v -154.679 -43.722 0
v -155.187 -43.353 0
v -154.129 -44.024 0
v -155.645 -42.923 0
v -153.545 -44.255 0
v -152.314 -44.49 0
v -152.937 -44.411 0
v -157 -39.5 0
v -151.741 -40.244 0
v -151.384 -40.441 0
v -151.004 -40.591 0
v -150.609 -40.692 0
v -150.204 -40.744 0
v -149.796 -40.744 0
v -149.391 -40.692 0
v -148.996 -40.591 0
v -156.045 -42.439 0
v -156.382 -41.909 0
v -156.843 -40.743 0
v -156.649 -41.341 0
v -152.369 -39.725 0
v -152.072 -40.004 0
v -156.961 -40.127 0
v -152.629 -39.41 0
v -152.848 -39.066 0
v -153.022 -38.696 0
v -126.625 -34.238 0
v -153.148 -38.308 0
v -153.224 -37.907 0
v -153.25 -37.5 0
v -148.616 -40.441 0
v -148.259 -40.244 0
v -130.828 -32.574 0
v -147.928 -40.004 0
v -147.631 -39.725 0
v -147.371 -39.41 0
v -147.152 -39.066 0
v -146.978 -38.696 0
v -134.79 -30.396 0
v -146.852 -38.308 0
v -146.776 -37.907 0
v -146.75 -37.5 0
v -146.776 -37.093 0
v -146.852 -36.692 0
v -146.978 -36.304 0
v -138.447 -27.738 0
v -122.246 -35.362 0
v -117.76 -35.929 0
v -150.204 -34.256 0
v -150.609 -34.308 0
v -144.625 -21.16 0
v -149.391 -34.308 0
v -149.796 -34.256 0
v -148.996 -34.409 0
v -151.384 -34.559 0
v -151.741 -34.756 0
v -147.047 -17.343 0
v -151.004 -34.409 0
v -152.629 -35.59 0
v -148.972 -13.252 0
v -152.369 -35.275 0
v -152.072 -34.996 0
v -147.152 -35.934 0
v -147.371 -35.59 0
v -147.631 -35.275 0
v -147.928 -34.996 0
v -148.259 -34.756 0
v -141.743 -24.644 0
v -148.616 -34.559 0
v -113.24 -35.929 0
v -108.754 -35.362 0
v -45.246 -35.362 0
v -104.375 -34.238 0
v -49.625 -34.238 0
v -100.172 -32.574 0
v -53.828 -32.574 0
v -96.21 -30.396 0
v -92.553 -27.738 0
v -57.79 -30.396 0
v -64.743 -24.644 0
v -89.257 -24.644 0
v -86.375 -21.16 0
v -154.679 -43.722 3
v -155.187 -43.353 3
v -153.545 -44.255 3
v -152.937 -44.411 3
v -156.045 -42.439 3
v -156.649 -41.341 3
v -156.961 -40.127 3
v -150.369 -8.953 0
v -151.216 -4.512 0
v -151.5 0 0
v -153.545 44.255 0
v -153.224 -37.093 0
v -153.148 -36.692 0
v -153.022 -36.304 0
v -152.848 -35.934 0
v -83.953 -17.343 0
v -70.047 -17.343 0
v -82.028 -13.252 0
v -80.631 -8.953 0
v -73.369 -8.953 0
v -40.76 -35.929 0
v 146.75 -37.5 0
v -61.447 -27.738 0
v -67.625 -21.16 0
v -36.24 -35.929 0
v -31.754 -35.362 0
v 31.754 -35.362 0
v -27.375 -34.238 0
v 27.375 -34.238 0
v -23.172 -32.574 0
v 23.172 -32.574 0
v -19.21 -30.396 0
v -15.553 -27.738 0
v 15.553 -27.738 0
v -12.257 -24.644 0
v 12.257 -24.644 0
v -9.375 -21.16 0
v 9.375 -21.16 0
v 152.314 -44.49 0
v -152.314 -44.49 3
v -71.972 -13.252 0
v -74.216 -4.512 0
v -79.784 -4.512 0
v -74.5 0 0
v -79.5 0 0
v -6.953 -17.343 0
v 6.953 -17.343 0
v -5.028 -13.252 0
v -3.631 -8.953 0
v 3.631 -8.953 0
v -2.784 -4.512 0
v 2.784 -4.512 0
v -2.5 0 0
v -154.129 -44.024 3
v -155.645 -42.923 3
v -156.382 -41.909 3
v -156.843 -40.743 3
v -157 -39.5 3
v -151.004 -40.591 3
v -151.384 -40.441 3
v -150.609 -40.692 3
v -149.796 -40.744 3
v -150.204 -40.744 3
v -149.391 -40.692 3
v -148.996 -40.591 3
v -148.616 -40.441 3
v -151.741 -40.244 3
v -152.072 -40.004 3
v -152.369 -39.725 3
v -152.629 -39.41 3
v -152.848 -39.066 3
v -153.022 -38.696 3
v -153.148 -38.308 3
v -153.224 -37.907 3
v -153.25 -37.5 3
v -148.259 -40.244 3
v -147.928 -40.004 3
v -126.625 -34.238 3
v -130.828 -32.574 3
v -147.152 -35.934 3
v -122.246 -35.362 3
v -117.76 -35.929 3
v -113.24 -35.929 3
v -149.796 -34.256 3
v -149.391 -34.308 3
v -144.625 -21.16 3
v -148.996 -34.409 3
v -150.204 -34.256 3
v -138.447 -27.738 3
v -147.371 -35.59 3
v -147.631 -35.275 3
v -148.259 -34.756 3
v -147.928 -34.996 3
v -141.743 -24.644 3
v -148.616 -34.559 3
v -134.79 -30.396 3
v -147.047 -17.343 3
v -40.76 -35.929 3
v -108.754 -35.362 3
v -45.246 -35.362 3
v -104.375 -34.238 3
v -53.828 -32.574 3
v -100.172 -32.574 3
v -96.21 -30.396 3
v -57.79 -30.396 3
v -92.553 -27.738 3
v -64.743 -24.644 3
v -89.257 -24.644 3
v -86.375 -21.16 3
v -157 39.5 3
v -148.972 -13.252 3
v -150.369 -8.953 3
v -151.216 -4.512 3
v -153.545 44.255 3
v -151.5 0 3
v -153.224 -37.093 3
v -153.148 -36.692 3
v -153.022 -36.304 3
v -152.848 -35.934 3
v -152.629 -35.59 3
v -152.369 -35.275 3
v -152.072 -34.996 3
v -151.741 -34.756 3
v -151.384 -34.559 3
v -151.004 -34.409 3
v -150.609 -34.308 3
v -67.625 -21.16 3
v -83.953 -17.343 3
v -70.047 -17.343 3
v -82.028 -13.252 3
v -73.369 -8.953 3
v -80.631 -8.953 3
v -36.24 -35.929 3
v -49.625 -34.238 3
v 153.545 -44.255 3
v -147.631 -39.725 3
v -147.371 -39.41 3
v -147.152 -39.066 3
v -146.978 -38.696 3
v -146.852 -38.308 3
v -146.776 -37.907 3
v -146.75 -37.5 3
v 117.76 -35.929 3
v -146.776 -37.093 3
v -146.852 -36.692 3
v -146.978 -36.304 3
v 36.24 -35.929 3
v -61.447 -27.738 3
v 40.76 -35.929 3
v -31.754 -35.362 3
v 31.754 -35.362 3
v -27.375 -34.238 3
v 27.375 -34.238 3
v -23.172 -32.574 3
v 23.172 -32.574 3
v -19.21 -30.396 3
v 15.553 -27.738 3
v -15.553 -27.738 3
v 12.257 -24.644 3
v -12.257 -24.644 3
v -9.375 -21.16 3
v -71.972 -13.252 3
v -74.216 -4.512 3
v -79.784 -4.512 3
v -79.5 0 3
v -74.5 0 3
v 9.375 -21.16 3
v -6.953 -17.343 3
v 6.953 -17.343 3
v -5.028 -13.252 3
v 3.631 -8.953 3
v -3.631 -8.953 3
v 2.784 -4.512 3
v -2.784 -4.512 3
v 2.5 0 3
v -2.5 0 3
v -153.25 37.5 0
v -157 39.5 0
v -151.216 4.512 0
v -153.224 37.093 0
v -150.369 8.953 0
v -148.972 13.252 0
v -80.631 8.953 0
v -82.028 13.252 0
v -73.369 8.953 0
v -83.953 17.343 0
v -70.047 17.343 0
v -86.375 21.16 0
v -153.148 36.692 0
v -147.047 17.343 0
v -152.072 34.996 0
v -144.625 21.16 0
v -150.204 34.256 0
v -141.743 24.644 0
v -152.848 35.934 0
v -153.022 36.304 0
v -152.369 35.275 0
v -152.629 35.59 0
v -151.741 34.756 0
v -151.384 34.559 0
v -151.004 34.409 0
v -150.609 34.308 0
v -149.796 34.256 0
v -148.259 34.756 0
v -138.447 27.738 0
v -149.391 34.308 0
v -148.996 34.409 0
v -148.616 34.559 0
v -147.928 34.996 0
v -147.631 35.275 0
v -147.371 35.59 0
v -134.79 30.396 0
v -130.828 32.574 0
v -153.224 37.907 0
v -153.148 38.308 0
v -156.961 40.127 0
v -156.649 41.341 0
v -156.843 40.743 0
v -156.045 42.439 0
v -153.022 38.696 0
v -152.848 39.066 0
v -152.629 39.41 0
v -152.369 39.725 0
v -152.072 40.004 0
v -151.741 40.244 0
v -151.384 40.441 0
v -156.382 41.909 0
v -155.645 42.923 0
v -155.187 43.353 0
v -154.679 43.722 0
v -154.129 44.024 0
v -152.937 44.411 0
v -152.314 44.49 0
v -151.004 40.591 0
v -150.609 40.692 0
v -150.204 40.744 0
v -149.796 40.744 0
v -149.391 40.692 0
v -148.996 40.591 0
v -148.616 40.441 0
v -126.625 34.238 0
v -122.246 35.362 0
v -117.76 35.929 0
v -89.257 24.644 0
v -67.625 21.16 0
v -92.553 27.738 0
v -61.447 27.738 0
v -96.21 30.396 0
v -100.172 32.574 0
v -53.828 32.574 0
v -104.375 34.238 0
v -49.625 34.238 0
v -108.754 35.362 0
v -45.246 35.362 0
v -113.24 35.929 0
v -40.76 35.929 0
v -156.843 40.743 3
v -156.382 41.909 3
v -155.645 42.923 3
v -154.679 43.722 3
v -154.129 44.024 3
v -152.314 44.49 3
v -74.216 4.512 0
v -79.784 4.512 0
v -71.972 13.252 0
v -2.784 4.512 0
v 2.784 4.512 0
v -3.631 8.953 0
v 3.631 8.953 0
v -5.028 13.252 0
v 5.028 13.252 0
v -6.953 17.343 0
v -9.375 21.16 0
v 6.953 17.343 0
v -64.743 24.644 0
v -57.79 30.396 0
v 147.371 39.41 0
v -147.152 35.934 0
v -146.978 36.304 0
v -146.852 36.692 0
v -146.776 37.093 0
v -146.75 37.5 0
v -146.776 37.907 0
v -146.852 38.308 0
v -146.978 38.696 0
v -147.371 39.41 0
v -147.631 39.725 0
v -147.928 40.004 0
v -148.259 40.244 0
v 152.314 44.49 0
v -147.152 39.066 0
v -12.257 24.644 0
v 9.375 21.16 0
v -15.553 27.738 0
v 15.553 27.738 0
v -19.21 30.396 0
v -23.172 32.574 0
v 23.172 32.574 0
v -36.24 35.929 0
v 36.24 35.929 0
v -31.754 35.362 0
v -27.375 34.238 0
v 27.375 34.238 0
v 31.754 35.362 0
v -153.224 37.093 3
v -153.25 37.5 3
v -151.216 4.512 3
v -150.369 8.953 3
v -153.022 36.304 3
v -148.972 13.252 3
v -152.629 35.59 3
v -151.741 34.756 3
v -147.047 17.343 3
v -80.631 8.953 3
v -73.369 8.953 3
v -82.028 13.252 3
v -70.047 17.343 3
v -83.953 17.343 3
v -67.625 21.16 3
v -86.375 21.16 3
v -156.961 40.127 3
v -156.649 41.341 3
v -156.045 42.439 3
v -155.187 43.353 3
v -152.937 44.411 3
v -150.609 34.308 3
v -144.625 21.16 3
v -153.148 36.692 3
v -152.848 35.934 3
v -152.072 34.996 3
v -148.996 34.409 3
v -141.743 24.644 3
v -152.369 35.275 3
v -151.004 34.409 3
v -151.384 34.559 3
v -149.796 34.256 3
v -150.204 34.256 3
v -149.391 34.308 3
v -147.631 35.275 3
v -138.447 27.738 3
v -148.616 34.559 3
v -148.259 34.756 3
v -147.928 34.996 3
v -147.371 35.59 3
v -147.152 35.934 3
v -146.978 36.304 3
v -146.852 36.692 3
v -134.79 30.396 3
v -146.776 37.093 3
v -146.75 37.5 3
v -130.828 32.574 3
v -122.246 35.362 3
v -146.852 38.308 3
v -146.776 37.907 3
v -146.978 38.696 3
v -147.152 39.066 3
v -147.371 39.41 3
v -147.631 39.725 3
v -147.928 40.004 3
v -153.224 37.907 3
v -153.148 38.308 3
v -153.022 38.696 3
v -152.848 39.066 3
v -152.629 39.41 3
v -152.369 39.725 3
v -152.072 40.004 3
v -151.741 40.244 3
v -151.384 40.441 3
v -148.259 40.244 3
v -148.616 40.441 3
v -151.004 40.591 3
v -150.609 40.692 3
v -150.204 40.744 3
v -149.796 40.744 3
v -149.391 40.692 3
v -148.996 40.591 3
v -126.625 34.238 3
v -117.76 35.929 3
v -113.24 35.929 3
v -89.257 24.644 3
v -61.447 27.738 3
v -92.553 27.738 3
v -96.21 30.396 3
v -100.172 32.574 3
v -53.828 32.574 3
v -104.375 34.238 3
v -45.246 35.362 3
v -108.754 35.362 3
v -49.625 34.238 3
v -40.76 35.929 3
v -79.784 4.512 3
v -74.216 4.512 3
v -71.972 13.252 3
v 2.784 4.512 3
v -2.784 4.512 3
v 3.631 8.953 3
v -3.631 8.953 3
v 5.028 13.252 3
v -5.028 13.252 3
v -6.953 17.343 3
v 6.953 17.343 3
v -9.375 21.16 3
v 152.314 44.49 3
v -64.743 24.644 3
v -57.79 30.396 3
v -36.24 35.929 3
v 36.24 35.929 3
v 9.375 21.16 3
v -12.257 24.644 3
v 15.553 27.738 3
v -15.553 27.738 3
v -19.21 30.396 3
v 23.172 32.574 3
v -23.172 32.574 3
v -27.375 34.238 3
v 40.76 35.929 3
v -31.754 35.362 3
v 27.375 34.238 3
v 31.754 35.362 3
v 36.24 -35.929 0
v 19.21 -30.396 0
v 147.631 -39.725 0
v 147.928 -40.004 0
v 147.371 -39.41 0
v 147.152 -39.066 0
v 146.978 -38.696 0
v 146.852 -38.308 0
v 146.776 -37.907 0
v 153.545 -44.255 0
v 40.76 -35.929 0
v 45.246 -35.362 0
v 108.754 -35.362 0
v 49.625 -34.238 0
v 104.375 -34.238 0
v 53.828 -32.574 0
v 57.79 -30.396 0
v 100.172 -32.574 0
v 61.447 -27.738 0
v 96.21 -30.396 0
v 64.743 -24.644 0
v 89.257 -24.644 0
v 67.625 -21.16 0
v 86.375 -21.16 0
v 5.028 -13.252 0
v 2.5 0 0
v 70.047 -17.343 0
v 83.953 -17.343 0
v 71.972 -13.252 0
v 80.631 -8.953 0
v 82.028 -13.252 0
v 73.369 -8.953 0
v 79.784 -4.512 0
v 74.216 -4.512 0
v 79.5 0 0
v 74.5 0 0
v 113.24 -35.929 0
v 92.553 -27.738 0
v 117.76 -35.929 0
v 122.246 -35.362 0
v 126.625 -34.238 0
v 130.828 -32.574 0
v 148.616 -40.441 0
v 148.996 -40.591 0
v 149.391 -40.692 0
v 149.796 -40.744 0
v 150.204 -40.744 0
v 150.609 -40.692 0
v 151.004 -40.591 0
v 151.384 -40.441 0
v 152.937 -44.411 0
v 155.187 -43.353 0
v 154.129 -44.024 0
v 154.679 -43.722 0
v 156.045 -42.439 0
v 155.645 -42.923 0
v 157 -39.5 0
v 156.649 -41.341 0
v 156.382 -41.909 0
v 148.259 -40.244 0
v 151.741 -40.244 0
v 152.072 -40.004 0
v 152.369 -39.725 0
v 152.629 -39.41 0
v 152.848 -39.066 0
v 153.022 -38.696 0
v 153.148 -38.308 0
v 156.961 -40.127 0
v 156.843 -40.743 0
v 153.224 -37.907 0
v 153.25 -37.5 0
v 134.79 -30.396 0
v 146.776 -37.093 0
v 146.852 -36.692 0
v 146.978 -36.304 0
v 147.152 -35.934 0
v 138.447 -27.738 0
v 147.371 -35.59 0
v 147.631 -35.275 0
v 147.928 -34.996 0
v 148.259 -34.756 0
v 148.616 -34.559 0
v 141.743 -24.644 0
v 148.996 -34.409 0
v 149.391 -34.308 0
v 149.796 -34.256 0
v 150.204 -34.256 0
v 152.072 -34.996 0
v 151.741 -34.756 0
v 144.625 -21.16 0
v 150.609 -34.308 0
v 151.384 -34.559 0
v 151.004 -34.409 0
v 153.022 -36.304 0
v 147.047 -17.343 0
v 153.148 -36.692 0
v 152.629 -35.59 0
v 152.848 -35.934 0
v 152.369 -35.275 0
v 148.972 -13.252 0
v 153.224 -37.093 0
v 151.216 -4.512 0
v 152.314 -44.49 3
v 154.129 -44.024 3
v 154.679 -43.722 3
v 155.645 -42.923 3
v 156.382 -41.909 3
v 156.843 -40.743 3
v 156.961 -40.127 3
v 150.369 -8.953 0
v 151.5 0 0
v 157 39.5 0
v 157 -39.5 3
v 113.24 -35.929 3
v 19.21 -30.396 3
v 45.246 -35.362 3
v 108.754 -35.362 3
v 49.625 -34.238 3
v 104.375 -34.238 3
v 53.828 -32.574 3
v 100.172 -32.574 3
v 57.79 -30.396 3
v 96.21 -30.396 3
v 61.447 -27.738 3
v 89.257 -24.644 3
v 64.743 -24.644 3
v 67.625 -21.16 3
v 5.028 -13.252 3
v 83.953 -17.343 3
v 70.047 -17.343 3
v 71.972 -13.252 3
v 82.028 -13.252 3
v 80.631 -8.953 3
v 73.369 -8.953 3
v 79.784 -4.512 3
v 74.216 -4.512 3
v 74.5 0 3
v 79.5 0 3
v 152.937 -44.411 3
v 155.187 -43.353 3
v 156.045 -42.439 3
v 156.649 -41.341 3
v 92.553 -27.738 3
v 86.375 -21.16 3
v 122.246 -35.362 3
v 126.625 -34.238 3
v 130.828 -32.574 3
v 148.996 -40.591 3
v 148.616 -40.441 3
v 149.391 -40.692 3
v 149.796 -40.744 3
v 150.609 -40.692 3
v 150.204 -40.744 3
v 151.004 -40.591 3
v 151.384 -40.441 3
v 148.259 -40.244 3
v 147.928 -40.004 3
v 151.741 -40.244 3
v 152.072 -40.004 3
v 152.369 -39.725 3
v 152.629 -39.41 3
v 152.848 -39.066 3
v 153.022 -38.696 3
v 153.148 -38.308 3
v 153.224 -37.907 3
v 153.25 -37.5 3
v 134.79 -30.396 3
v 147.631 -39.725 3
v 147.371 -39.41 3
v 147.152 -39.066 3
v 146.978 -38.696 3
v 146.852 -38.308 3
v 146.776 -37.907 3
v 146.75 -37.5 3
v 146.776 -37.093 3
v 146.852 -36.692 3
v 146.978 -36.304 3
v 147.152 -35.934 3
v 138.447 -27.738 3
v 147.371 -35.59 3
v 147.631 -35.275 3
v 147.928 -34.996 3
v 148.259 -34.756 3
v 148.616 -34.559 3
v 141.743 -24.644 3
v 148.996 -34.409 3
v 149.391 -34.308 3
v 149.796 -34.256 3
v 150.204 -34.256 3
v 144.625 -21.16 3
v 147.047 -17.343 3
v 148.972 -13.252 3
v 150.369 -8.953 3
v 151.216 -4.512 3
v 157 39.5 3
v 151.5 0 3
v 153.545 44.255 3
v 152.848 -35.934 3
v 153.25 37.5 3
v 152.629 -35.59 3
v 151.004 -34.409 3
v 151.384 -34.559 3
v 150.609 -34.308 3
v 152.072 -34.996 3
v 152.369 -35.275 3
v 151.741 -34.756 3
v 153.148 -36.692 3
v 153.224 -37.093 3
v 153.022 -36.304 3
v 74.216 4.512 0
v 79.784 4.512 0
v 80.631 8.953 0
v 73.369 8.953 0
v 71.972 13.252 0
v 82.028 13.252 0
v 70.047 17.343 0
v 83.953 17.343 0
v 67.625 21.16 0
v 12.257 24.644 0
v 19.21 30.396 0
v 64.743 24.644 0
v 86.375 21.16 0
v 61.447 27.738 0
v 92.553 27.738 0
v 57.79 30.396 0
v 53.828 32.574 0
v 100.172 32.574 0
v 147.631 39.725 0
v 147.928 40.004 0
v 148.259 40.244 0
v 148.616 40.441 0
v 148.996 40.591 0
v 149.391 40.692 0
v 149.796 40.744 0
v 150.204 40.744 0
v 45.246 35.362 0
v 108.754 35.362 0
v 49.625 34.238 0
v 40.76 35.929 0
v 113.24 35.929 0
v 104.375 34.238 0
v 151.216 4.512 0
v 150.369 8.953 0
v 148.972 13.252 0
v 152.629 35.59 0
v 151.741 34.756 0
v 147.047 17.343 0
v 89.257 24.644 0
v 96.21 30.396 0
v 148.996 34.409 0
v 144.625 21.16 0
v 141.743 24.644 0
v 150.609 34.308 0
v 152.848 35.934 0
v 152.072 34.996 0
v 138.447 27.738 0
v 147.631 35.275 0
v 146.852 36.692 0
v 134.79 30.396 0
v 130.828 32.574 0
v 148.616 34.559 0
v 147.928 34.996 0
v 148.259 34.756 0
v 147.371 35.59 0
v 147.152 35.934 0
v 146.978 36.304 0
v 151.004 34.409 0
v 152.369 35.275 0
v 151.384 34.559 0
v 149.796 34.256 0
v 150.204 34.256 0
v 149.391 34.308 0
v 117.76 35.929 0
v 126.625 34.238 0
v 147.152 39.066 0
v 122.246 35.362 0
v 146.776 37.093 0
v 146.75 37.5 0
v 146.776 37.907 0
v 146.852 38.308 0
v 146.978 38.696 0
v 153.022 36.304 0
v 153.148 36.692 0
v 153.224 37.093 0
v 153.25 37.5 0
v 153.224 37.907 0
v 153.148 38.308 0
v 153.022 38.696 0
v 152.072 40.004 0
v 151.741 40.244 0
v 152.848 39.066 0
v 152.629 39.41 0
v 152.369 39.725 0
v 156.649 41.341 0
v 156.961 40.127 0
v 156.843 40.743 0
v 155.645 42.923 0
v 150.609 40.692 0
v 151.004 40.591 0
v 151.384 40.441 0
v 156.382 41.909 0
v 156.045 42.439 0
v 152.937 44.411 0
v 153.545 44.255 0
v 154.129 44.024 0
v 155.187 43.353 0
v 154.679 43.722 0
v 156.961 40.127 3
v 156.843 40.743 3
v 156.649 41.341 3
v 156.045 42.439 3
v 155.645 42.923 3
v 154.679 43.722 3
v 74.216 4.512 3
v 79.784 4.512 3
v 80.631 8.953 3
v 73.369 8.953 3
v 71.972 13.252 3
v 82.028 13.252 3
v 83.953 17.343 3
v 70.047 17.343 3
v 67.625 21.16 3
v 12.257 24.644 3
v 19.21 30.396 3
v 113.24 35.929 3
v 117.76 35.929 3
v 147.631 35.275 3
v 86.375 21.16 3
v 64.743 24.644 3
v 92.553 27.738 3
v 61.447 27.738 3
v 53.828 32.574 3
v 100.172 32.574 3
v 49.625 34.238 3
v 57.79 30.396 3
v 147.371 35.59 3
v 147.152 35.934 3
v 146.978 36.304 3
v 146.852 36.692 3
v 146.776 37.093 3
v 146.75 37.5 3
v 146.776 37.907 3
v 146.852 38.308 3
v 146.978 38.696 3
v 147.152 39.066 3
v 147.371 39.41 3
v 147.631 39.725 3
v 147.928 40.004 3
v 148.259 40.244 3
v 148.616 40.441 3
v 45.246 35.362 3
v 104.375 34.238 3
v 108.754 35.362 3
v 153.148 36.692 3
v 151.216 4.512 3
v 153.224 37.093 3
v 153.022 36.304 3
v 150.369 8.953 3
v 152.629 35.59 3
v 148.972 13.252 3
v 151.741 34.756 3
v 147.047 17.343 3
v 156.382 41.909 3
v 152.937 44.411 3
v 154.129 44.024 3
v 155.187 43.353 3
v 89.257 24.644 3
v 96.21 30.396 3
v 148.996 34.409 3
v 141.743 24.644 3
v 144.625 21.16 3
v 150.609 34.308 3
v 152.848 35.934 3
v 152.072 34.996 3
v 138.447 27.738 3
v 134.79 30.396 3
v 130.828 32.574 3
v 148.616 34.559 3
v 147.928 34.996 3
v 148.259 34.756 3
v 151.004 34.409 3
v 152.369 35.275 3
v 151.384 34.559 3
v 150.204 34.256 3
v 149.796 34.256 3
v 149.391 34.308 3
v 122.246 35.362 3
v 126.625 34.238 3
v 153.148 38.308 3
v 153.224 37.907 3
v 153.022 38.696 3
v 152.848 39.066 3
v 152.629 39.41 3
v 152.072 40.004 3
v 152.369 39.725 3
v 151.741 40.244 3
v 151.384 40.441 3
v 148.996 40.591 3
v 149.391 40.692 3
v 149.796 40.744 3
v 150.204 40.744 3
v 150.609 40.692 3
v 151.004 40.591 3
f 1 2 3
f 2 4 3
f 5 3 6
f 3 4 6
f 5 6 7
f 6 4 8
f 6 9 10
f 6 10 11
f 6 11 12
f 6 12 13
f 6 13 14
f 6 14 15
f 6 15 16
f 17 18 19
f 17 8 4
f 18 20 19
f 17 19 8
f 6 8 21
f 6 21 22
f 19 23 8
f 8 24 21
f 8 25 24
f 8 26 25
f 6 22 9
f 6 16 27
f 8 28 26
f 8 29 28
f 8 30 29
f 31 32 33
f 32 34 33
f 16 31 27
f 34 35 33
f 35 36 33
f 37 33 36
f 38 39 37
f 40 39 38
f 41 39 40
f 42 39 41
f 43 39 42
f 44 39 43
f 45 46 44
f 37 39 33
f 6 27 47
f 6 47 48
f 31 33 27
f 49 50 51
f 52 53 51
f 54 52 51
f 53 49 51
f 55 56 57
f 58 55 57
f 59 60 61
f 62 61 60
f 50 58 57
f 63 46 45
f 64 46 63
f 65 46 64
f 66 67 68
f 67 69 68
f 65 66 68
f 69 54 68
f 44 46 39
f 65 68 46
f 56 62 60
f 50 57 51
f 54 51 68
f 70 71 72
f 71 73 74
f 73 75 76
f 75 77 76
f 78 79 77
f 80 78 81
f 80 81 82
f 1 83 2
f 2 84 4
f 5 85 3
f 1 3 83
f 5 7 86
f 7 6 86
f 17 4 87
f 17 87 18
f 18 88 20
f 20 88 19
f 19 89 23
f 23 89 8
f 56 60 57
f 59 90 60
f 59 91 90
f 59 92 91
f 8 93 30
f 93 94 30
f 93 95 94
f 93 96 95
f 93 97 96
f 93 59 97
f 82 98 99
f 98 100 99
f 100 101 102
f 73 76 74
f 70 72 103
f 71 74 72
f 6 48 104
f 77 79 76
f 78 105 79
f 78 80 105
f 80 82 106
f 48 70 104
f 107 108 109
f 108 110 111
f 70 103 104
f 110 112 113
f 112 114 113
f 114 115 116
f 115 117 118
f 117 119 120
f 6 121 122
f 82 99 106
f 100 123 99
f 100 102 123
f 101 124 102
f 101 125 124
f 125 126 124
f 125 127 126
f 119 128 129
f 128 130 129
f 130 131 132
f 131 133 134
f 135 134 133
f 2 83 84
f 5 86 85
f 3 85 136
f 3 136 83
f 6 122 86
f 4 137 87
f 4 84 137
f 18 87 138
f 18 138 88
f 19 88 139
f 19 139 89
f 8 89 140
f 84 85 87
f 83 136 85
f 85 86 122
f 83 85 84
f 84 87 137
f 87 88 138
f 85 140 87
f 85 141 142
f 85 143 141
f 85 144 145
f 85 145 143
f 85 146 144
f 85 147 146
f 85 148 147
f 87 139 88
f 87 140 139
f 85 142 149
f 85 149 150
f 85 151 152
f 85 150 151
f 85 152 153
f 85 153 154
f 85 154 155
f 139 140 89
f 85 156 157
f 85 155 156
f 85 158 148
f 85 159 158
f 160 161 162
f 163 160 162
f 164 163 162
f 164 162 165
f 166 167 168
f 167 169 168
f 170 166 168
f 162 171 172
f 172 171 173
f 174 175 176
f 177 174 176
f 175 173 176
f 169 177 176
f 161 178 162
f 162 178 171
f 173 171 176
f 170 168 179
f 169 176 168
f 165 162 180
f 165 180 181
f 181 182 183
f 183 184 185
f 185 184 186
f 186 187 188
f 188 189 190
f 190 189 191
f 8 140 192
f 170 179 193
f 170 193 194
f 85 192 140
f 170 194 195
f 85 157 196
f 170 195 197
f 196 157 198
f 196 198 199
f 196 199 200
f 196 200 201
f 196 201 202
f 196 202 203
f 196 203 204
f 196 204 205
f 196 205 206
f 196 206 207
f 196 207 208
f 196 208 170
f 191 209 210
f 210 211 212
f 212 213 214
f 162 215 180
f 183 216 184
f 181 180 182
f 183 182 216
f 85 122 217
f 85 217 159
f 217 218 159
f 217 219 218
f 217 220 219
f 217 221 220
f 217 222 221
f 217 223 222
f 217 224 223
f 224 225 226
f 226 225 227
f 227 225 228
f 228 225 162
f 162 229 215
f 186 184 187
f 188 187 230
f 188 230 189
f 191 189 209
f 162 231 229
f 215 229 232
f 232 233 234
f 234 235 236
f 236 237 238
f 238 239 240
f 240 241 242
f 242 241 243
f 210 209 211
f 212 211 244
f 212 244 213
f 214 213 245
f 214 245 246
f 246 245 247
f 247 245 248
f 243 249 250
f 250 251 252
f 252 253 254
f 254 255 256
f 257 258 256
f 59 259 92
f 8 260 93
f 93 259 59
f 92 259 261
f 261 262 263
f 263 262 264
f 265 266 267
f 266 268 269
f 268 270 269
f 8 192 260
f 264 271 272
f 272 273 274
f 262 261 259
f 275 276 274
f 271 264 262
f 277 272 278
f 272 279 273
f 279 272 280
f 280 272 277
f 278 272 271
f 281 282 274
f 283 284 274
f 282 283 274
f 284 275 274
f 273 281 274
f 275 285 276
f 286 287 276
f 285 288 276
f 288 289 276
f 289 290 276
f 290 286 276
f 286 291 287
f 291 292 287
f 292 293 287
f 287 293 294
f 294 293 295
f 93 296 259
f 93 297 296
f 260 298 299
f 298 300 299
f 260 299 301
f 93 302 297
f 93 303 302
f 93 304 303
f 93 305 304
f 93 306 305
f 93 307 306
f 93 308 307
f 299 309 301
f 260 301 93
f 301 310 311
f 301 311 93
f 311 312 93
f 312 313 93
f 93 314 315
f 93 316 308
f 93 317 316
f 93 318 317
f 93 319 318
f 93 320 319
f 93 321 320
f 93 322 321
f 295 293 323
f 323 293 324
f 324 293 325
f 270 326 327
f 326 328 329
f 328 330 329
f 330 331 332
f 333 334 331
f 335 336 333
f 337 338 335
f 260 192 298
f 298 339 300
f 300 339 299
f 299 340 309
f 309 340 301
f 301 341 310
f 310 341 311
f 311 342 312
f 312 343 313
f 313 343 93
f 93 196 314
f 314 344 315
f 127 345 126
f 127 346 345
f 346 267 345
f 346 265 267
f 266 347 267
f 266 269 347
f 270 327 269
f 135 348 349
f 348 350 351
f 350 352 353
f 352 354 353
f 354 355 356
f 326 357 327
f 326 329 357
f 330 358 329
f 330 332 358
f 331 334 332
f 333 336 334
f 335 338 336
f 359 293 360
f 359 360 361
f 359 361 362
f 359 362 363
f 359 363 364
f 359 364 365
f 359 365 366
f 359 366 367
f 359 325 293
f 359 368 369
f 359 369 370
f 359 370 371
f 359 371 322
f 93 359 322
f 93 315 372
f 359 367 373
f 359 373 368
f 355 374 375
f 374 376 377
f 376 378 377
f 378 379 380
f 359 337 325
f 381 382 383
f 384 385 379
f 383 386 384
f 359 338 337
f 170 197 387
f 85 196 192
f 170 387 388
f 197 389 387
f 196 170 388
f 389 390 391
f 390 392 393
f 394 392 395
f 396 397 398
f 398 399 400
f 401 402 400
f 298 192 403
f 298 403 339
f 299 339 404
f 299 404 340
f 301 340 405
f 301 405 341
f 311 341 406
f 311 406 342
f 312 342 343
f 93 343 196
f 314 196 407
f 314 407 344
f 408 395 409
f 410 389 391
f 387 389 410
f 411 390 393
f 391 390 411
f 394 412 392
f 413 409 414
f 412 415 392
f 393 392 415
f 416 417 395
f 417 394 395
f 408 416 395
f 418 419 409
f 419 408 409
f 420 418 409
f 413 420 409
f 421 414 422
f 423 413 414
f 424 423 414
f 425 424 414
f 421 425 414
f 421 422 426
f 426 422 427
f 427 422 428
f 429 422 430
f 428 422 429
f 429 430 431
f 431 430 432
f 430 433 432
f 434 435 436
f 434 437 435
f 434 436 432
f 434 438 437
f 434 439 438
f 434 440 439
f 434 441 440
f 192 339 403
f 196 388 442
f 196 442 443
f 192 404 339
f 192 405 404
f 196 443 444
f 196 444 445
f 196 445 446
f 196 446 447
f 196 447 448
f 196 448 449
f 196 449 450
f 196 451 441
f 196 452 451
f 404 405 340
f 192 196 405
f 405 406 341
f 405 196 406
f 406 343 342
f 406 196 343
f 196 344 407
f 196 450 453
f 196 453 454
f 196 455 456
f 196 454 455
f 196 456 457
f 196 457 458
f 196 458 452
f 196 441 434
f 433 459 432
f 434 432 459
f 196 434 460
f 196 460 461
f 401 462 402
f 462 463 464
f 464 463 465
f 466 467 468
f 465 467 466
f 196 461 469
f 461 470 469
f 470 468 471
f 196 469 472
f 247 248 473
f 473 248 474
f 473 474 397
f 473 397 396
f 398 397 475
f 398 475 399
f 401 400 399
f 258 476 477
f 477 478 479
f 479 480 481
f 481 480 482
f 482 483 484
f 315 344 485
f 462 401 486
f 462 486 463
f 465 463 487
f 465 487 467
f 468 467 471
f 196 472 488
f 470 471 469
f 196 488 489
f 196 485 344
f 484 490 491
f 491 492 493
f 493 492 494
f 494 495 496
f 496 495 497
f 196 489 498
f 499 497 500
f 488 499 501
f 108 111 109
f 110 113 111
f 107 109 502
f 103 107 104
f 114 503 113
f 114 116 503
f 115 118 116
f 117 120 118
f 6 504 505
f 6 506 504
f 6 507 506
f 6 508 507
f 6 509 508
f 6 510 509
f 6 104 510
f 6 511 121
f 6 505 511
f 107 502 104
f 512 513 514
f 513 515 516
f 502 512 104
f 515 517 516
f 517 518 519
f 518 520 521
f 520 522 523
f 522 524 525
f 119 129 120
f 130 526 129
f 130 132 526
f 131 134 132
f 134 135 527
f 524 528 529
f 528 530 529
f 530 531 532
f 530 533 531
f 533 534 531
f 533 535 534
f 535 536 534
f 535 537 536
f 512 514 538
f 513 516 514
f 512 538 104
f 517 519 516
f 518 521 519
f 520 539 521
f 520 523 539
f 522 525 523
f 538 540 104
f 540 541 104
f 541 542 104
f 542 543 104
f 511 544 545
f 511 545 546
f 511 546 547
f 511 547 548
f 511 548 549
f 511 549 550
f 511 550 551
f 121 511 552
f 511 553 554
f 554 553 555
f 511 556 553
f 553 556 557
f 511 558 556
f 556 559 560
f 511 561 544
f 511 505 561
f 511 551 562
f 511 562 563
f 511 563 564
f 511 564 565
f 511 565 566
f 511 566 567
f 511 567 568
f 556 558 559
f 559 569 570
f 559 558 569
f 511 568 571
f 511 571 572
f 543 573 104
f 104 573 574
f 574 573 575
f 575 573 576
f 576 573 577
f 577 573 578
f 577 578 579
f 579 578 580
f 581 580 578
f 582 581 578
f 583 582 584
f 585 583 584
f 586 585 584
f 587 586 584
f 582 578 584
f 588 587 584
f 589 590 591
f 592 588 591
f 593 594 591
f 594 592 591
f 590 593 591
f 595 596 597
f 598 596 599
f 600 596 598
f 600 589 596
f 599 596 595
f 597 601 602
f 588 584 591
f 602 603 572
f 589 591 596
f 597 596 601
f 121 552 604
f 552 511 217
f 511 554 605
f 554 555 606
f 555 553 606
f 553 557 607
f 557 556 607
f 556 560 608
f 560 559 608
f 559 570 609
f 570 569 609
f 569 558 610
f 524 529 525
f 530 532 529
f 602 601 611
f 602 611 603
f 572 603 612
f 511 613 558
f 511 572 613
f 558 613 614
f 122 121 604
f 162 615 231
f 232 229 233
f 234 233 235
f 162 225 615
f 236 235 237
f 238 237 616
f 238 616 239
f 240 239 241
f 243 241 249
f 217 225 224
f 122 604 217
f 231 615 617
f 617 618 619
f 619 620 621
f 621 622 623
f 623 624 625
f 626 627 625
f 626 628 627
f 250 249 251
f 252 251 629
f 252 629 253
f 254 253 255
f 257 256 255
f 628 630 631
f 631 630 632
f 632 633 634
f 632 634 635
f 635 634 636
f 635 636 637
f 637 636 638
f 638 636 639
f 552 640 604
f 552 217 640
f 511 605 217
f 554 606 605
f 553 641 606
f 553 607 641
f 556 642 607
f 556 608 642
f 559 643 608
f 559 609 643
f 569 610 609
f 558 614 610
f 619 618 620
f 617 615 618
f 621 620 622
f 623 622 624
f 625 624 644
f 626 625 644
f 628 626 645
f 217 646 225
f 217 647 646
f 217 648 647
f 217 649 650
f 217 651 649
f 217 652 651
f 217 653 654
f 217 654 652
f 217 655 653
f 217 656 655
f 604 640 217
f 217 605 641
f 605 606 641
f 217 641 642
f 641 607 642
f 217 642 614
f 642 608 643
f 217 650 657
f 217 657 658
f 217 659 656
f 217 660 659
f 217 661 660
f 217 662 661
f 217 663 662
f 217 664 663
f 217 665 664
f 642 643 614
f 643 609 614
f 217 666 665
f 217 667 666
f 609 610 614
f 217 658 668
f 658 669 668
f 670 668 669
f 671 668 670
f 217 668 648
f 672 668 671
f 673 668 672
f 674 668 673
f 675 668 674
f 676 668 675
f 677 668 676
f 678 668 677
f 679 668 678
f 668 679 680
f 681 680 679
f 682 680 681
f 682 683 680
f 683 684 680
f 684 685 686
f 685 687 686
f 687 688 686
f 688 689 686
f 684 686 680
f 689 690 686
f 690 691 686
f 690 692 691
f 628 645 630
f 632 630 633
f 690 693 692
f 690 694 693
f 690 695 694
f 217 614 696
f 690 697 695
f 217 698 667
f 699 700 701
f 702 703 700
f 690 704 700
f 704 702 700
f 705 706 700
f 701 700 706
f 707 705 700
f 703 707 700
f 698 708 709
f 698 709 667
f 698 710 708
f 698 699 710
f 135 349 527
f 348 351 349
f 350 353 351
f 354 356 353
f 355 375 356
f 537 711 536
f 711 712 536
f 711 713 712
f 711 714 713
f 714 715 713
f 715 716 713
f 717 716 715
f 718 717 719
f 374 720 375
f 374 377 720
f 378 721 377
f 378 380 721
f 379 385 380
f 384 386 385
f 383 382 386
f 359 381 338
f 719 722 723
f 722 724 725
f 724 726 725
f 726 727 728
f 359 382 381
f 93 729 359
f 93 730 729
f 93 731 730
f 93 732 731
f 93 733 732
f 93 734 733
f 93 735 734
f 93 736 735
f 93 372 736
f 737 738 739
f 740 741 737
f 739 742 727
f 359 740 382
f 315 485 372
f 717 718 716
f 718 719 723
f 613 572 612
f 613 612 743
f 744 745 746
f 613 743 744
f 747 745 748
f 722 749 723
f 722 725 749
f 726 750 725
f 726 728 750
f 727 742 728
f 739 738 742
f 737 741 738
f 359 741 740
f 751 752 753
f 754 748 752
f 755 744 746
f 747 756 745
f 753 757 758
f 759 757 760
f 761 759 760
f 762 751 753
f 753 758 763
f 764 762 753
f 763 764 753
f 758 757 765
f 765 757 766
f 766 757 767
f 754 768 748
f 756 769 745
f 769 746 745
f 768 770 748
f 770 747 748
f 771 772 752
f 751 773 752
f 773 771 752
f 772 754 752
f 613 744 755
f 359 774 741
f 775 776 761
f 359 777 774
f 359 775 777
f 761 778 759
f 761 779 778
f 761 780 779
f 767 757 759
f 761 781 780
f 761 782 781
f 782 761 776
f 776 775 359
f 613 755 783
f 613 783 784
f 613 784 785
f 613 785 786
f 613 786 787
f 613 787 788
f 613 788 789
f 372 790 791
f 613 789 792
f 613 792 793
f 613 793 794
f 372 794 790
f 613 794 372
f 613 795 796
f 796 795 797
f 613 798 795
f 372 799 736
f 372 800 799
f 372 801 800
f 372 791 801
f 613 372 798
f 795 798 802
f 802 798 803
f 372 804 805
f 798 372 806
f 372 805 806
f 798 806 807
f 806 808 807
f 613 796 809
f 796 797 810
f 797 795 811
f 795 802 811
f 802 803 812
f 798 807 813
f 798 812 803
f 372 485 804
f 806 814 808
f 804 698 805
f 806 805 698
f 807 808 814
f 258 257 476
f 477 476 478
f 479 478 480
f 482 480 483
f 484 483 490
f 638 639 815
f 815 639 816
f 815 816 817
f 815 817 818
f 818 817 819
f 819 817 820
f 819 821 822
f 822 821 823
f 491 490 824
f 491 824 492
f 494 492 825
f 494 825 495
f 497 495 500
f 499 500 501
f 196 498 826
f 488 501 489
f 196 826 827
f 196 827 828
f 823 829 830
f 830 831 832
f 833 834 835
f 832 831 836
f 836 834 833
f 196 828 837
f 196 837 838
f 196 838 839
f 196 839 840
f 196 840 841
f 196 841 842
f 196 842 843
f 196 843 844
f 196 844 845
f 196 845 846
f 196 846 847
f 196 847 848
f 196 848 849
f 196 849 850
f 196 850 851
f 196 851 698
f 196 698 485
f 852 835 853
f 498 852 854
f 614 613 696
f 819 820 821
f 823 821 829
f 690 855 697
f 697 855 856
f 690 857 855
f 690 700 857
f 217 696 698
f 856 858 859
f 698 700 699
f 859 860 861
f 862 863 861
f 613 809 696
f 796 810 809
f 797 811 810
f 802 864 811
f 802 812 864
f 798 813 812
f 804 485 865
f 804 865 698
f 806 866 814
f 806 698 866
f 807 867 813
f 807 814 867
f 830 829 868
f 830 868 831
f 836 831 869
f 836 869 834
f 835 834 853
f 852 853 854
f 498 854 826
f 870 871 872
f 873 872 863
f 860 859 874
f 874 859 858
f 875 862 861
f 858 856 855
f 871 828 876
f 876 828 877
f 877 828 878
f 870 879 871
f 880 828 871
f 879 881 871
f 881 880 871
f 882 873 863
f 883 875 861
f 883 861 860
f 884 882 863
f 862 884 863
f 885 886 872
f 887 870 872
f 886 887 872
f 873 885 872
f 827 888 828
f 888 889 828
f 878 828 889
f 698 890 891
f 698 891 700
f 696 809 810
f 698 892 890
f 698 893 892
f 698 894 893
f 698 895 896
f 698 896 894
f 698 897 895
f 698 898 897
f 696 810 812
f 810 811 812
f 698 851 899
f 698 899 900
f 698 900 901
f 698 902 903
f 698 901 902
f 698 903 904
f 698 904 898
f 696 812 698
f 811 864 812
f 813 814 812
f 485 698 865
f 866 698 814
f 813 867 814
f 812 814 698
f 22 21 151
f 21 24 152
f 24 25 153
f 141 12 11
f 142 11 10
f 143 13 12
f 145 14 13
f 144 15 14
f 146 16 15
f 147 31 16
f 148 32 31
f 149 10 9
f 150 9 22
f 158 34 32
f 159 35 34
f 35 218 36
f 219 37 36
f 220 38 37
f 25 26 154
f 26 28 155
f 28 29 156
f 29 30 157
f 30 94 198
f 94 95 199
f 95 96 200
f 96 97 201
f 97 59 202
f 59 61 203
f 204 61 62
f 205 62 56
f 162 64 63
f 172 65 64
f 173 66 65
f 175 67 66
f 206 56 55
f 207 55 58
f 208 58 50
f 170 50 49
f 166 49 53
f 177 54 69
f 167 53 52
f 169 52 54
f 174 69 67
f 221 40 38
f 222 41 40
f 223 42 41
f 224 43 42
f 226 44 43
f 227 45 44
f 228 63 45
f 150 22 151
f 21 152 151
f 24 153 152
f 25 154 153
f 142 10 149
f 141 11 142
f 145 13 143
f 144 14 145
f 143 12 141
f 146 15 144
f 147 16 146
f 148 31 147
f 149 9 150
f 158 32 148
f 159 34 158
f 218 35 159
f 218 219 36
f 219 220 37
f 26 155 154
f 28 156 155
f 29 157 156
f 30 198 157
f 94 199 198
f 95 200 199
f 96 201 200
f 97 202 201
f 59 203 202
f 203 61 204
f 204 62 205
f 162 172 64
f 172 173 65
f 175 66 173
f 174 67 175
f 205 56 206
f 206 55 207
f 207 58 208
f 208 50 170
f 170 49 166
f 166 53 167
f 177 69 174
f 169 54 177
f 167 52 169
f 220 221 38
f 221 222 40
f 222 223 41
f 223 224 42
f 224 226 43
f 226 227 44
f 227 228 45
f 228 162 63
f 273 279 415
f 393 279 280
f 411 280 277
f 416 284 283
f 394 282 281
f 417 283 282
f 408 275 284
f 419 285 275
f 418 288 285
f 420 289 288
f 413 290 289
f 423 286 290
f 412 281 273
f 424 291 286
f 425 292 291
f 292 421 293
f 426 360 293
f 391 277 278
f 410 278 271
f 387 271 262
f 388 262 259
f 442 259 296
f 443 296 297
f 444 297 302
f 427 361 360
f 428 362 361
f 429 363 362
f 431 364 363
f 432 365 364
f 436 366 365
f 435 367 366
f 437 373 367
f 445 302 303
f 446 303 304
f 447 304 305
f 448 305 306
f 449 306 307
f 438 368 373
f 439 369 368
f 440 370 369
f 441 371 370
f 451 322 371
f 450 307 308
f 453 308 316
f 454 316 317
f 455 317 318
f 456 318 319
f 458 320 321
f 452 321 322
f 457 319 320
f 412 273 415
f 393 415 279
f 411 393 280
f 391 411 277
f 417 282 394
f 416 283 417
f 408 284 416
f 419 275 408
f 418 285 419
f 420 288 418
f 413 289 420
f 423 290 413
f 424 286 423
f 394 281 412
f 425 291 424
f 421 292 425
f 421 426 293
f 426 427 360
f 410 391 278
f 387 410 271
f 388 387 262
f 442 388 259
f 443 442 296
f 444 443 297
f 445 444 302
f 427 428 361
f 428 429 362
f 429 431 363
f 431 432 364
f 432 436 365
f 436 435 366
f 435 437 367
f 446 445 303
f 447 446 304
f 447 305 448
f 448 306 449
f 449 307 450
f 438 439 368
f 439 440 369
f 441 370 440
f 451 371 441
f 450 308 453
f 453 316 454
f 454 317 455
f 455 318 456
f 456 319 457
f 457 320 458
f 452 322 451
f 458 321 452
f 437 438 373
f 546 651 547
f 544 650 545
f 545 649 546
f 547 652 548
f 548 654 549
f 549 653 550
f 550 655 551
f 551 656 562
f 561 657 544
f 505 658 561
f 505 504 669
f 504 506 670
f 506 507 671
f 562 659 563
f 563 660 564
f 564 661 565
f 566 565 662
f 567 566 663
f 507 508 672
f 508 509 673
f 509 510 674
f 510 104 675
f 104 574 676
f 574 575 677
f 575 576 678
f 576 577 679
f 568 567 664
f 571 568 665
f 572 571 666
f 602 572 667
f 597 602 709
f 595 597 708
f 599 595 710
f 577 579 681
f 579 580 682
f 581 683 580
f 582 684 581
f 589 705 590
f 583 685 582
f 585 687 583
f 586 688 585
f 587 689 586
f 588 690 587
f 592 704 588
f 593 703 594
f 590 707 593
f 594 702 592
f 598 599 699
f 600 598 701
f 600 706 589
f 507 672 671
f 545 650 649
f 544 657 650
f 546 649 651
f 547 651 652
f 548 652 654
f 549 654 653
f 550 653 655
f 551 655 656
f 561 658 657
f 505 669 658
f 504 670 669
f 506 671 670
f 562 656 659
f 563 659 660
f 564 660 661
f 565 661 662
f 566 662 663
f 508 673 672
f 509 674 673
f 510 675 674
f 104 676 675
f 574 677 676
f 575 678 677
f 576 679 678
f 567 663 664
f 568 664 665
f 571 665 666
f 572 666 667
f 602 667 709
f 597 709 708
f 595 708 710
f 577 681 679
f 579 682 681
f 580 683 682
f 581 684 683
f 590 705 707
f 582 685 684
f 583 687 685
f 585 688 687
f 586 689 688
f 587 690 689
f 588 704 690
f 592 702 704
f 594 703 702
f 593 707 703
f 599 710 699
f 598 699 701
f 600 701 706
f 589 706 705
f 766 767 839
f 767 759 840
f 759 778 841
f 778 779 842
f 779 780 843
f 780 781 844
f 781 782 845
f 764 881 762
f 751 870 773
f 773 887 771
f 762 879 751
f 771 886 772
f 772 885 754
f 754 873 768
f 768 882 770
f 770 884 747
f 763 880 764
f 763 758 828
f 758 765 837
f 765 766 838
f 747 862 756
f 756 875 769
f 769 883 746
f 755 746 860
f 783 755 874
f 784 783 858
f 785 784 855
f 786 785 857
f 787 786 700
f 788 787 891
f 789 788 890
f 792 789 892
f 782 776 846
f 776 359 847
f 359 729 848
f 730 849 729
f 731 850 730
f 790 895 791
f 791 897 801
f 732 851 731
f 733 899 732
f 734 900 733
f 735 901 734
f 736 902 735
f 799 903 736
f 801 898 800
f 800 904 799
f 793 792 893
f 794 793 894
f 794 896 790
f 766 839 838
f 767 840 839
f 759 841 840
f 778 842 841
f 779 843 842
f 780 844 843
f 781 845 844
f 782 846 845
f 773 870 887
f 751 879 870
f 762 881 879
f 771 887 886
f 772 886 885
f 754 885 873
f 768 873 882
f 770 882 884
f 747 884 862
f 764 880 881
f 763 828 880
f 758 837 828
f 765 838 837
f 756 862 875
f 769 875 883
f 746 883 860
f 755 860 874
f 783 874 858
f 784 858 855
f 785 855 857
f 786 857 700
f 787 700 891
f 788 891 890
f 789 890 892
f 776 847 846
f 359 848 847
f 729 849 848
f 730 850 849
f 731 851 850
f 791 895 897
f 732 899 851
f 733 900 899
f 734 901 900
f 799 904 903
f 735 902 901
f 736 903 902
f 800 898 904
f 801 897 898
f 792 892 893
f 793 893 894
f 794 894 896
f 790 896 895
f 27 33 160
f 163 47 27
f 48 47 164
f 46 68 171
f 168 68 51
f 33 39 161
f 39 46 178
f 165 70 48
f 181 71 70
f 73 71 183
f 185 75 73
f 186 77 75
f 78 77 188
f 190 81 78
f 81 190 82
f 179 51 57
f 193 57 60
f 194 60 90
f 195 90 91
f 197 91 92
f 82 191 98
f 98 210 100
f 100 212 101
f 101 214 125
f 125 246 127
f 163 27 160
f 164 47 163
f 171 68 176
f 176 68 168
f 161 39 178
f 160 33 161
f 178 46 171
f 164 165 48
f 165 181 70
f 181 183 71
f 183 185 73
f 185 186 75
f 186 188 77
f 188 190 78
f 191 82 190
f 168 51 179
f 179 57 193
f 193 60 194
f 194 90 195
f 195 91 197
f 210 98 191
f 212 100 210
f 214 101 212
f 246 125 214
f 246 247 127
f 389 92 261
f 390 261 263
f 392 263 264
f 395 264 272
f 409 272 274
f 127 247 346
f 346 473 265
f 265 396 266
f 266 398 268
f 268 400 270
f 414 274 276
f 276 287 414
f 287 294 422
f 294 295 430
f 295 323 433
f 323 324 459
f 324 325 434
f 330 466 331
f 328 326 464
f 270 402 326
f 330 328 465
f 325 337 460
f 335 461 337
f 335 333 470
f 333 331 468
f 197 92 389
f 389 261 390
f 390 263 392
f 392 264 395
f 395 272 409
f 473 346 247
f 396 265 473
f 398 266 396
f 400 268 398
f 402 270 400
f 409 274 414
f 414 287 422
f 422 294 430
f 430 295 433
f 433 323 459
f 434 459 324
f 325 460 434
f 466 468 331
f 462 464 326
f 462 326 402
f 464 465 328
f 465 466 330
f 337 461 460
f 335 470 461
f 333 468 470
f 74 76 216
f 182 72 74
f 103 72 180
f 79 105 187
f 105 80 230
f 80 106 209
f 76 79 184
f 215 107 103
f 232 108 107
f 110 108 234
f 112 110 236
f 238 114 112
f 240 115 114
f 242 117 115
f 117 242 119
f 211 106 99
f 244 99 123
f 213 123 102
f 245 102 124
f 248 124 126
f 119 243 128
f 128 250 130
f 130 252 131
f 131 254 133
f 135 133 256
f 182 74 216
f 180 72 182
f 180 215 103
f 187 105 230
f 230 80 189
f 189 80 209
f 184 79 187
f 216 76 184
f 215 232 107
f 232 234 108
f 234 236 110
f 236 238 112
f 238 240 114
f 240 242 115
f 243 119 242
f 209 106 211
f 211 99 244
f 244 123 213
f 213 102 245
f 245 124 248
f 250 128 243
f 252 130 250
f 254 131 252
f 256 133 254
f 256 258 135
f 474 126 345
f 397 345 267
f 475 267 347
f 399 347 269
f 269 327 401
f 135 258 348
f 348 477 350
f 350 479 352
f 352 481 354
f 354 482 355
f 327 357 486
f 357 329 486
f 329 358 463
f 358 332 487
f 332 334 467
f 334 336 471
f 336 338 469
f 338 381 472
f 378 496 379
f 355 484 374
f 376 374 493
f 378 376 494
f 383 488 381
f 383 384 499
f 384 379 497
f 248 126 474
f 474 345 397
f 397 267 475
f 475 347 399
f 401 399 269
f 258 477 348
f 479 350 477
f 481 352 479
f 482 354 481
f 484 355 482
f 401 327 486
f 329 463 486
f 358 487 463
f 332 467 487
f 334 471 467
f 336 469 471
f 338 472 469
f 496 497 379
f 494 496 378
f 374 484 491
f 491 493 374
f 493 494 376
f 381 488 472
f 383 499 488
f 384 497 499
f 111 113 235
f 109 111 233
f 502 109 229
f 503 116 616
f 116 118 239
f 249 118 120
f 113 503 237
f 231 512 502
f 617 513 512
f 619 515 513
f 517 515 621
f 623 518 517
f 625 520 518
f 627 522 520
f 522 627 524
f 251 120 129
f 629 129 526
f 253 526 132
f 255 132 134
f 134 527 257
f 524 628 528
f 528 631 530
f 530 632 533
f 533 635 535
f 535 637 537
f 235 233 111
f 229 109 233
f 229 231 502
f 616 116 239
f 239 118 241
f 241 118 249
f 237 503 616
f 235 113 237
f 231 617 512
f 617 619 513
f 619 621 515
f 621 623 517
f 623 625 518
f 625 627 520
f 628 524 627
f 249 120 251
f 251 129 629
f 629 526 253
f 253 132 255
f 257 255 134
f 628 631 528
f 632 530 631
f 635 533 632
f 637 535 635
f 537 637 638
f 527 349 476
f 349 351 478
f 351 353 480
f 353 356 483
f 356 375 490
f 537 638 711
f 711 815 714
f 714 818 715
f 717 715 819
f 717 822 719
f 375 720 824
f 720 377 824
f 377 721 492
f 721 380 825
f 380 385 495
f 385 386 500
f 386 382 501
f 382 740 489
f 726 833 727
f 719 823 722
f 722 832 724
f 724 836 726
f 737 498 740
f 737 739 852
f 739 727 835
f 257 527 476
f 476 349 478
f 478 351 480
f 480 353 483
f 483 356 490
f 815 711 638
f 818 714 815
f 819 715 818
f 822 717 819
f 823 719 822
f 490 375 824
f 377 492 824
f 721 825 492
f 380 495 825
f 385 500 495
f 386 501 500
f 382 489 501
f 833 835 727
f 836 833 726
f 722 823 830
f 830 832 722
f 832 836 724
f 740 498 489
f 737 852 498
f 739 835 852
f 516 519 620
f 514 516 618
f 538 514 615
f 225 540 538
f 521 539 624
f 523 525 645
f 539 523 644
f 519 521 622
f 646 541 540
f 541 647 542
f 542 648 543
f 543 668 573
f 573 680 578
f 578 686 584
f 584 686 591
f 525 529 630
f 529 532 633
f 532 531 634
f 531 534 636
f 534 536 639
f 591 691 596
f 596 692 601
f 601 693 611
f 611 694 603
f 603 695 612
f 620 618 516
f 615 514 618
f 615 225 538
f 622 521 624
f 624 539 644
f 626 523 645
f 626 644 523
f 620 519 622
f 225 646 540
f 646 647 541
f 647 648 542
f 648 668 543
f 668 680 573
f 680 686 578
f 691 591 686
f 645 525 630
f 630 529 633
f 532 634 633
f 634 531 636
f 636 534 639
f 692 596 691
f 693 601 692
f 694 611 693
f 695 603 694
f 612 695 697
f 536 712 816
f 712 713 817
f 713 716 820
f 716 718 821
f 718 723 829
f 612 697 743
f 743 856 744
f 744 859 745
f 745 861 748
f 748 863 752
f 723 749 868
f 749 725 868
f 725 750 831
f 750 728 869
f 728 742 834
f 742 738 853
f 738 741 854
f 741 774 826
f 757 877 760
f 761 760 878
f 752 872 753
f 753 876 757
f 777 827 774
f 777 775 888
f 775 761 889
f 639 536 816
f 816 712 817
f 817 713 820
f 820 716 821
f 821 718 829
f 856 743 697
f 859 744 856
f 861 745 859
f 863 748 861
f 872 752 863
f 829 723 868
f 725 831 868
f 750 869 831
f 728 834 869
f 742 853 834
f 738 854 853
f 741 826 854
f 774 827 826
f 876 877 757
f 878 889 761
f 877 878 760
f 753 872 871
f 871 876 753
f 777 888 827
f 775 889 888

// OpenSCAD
$fn = 50;

difference() {
	union() {
		hull() {
			translate(v = [-152.0, 39.5, 0]) {
				cylinder(h = 3, r = 5);
			}
			translate(v = [152.0, 39.5, 0]) {
				cylinder(h = 3, r = 5);
			}
			translate(v = [-152.0, -39.5, 0]) {
				cylinder(h = 3, r = 5);
			}
			translate(v = [152.0, -39.5, 0]) {
				cylinder(h = 3, r = 5);
			}
		}
	}
	union() {
		translate(v = [-150.0, -37.5, -100.0]) {
			cylinder(h = 200, r = 3.25);
		}
		translate(v = [-150.0, 37.5, -100.0]) {
			cylinder(h = 200, r = 3.25);
		}
		translate(v = [150.0, -37.5, -100.0]) {
			cylinder(h = 200, r = 3.25);
		}
		translate(v = [150.0, 37.5, -100.0]) {
			cylinder(h = 200, r = 3.25);
		}
		translate(v = [-150.0, -37.5, -100.0]) {
			cylinder(h = 200, r = 1.8);
		}
		translate(v = [-150.0, 37.5, -100.0]) {
			cylinder(h = 200, r = 1.8);
		}
		translate(v = [150.0, -37.5, -100.0]) {
			cylinder(h = 200, r = 1.8);
		}
		translate(v = [150.0, 37.5, -100.0]) {
			cylinder(h = 200, r = 1.8);
		}
		translate(v = [-115.5, 0, 0.0]) {
			cylinder(h = 3, r = 36.0);
		}
		translate(v = [-38.5, 0, 0.0]) {
			cylinder(h = 3, r = 36.0);
		}
		translate(v = [38.5, 0, 0.0]) {
			cylinder(h = 3, r = 36.0);
		}
		translate(v = [115.5, 0, 0.0]) {
			cylinder(h = 3, r = 36.0);
		}
	}
}
